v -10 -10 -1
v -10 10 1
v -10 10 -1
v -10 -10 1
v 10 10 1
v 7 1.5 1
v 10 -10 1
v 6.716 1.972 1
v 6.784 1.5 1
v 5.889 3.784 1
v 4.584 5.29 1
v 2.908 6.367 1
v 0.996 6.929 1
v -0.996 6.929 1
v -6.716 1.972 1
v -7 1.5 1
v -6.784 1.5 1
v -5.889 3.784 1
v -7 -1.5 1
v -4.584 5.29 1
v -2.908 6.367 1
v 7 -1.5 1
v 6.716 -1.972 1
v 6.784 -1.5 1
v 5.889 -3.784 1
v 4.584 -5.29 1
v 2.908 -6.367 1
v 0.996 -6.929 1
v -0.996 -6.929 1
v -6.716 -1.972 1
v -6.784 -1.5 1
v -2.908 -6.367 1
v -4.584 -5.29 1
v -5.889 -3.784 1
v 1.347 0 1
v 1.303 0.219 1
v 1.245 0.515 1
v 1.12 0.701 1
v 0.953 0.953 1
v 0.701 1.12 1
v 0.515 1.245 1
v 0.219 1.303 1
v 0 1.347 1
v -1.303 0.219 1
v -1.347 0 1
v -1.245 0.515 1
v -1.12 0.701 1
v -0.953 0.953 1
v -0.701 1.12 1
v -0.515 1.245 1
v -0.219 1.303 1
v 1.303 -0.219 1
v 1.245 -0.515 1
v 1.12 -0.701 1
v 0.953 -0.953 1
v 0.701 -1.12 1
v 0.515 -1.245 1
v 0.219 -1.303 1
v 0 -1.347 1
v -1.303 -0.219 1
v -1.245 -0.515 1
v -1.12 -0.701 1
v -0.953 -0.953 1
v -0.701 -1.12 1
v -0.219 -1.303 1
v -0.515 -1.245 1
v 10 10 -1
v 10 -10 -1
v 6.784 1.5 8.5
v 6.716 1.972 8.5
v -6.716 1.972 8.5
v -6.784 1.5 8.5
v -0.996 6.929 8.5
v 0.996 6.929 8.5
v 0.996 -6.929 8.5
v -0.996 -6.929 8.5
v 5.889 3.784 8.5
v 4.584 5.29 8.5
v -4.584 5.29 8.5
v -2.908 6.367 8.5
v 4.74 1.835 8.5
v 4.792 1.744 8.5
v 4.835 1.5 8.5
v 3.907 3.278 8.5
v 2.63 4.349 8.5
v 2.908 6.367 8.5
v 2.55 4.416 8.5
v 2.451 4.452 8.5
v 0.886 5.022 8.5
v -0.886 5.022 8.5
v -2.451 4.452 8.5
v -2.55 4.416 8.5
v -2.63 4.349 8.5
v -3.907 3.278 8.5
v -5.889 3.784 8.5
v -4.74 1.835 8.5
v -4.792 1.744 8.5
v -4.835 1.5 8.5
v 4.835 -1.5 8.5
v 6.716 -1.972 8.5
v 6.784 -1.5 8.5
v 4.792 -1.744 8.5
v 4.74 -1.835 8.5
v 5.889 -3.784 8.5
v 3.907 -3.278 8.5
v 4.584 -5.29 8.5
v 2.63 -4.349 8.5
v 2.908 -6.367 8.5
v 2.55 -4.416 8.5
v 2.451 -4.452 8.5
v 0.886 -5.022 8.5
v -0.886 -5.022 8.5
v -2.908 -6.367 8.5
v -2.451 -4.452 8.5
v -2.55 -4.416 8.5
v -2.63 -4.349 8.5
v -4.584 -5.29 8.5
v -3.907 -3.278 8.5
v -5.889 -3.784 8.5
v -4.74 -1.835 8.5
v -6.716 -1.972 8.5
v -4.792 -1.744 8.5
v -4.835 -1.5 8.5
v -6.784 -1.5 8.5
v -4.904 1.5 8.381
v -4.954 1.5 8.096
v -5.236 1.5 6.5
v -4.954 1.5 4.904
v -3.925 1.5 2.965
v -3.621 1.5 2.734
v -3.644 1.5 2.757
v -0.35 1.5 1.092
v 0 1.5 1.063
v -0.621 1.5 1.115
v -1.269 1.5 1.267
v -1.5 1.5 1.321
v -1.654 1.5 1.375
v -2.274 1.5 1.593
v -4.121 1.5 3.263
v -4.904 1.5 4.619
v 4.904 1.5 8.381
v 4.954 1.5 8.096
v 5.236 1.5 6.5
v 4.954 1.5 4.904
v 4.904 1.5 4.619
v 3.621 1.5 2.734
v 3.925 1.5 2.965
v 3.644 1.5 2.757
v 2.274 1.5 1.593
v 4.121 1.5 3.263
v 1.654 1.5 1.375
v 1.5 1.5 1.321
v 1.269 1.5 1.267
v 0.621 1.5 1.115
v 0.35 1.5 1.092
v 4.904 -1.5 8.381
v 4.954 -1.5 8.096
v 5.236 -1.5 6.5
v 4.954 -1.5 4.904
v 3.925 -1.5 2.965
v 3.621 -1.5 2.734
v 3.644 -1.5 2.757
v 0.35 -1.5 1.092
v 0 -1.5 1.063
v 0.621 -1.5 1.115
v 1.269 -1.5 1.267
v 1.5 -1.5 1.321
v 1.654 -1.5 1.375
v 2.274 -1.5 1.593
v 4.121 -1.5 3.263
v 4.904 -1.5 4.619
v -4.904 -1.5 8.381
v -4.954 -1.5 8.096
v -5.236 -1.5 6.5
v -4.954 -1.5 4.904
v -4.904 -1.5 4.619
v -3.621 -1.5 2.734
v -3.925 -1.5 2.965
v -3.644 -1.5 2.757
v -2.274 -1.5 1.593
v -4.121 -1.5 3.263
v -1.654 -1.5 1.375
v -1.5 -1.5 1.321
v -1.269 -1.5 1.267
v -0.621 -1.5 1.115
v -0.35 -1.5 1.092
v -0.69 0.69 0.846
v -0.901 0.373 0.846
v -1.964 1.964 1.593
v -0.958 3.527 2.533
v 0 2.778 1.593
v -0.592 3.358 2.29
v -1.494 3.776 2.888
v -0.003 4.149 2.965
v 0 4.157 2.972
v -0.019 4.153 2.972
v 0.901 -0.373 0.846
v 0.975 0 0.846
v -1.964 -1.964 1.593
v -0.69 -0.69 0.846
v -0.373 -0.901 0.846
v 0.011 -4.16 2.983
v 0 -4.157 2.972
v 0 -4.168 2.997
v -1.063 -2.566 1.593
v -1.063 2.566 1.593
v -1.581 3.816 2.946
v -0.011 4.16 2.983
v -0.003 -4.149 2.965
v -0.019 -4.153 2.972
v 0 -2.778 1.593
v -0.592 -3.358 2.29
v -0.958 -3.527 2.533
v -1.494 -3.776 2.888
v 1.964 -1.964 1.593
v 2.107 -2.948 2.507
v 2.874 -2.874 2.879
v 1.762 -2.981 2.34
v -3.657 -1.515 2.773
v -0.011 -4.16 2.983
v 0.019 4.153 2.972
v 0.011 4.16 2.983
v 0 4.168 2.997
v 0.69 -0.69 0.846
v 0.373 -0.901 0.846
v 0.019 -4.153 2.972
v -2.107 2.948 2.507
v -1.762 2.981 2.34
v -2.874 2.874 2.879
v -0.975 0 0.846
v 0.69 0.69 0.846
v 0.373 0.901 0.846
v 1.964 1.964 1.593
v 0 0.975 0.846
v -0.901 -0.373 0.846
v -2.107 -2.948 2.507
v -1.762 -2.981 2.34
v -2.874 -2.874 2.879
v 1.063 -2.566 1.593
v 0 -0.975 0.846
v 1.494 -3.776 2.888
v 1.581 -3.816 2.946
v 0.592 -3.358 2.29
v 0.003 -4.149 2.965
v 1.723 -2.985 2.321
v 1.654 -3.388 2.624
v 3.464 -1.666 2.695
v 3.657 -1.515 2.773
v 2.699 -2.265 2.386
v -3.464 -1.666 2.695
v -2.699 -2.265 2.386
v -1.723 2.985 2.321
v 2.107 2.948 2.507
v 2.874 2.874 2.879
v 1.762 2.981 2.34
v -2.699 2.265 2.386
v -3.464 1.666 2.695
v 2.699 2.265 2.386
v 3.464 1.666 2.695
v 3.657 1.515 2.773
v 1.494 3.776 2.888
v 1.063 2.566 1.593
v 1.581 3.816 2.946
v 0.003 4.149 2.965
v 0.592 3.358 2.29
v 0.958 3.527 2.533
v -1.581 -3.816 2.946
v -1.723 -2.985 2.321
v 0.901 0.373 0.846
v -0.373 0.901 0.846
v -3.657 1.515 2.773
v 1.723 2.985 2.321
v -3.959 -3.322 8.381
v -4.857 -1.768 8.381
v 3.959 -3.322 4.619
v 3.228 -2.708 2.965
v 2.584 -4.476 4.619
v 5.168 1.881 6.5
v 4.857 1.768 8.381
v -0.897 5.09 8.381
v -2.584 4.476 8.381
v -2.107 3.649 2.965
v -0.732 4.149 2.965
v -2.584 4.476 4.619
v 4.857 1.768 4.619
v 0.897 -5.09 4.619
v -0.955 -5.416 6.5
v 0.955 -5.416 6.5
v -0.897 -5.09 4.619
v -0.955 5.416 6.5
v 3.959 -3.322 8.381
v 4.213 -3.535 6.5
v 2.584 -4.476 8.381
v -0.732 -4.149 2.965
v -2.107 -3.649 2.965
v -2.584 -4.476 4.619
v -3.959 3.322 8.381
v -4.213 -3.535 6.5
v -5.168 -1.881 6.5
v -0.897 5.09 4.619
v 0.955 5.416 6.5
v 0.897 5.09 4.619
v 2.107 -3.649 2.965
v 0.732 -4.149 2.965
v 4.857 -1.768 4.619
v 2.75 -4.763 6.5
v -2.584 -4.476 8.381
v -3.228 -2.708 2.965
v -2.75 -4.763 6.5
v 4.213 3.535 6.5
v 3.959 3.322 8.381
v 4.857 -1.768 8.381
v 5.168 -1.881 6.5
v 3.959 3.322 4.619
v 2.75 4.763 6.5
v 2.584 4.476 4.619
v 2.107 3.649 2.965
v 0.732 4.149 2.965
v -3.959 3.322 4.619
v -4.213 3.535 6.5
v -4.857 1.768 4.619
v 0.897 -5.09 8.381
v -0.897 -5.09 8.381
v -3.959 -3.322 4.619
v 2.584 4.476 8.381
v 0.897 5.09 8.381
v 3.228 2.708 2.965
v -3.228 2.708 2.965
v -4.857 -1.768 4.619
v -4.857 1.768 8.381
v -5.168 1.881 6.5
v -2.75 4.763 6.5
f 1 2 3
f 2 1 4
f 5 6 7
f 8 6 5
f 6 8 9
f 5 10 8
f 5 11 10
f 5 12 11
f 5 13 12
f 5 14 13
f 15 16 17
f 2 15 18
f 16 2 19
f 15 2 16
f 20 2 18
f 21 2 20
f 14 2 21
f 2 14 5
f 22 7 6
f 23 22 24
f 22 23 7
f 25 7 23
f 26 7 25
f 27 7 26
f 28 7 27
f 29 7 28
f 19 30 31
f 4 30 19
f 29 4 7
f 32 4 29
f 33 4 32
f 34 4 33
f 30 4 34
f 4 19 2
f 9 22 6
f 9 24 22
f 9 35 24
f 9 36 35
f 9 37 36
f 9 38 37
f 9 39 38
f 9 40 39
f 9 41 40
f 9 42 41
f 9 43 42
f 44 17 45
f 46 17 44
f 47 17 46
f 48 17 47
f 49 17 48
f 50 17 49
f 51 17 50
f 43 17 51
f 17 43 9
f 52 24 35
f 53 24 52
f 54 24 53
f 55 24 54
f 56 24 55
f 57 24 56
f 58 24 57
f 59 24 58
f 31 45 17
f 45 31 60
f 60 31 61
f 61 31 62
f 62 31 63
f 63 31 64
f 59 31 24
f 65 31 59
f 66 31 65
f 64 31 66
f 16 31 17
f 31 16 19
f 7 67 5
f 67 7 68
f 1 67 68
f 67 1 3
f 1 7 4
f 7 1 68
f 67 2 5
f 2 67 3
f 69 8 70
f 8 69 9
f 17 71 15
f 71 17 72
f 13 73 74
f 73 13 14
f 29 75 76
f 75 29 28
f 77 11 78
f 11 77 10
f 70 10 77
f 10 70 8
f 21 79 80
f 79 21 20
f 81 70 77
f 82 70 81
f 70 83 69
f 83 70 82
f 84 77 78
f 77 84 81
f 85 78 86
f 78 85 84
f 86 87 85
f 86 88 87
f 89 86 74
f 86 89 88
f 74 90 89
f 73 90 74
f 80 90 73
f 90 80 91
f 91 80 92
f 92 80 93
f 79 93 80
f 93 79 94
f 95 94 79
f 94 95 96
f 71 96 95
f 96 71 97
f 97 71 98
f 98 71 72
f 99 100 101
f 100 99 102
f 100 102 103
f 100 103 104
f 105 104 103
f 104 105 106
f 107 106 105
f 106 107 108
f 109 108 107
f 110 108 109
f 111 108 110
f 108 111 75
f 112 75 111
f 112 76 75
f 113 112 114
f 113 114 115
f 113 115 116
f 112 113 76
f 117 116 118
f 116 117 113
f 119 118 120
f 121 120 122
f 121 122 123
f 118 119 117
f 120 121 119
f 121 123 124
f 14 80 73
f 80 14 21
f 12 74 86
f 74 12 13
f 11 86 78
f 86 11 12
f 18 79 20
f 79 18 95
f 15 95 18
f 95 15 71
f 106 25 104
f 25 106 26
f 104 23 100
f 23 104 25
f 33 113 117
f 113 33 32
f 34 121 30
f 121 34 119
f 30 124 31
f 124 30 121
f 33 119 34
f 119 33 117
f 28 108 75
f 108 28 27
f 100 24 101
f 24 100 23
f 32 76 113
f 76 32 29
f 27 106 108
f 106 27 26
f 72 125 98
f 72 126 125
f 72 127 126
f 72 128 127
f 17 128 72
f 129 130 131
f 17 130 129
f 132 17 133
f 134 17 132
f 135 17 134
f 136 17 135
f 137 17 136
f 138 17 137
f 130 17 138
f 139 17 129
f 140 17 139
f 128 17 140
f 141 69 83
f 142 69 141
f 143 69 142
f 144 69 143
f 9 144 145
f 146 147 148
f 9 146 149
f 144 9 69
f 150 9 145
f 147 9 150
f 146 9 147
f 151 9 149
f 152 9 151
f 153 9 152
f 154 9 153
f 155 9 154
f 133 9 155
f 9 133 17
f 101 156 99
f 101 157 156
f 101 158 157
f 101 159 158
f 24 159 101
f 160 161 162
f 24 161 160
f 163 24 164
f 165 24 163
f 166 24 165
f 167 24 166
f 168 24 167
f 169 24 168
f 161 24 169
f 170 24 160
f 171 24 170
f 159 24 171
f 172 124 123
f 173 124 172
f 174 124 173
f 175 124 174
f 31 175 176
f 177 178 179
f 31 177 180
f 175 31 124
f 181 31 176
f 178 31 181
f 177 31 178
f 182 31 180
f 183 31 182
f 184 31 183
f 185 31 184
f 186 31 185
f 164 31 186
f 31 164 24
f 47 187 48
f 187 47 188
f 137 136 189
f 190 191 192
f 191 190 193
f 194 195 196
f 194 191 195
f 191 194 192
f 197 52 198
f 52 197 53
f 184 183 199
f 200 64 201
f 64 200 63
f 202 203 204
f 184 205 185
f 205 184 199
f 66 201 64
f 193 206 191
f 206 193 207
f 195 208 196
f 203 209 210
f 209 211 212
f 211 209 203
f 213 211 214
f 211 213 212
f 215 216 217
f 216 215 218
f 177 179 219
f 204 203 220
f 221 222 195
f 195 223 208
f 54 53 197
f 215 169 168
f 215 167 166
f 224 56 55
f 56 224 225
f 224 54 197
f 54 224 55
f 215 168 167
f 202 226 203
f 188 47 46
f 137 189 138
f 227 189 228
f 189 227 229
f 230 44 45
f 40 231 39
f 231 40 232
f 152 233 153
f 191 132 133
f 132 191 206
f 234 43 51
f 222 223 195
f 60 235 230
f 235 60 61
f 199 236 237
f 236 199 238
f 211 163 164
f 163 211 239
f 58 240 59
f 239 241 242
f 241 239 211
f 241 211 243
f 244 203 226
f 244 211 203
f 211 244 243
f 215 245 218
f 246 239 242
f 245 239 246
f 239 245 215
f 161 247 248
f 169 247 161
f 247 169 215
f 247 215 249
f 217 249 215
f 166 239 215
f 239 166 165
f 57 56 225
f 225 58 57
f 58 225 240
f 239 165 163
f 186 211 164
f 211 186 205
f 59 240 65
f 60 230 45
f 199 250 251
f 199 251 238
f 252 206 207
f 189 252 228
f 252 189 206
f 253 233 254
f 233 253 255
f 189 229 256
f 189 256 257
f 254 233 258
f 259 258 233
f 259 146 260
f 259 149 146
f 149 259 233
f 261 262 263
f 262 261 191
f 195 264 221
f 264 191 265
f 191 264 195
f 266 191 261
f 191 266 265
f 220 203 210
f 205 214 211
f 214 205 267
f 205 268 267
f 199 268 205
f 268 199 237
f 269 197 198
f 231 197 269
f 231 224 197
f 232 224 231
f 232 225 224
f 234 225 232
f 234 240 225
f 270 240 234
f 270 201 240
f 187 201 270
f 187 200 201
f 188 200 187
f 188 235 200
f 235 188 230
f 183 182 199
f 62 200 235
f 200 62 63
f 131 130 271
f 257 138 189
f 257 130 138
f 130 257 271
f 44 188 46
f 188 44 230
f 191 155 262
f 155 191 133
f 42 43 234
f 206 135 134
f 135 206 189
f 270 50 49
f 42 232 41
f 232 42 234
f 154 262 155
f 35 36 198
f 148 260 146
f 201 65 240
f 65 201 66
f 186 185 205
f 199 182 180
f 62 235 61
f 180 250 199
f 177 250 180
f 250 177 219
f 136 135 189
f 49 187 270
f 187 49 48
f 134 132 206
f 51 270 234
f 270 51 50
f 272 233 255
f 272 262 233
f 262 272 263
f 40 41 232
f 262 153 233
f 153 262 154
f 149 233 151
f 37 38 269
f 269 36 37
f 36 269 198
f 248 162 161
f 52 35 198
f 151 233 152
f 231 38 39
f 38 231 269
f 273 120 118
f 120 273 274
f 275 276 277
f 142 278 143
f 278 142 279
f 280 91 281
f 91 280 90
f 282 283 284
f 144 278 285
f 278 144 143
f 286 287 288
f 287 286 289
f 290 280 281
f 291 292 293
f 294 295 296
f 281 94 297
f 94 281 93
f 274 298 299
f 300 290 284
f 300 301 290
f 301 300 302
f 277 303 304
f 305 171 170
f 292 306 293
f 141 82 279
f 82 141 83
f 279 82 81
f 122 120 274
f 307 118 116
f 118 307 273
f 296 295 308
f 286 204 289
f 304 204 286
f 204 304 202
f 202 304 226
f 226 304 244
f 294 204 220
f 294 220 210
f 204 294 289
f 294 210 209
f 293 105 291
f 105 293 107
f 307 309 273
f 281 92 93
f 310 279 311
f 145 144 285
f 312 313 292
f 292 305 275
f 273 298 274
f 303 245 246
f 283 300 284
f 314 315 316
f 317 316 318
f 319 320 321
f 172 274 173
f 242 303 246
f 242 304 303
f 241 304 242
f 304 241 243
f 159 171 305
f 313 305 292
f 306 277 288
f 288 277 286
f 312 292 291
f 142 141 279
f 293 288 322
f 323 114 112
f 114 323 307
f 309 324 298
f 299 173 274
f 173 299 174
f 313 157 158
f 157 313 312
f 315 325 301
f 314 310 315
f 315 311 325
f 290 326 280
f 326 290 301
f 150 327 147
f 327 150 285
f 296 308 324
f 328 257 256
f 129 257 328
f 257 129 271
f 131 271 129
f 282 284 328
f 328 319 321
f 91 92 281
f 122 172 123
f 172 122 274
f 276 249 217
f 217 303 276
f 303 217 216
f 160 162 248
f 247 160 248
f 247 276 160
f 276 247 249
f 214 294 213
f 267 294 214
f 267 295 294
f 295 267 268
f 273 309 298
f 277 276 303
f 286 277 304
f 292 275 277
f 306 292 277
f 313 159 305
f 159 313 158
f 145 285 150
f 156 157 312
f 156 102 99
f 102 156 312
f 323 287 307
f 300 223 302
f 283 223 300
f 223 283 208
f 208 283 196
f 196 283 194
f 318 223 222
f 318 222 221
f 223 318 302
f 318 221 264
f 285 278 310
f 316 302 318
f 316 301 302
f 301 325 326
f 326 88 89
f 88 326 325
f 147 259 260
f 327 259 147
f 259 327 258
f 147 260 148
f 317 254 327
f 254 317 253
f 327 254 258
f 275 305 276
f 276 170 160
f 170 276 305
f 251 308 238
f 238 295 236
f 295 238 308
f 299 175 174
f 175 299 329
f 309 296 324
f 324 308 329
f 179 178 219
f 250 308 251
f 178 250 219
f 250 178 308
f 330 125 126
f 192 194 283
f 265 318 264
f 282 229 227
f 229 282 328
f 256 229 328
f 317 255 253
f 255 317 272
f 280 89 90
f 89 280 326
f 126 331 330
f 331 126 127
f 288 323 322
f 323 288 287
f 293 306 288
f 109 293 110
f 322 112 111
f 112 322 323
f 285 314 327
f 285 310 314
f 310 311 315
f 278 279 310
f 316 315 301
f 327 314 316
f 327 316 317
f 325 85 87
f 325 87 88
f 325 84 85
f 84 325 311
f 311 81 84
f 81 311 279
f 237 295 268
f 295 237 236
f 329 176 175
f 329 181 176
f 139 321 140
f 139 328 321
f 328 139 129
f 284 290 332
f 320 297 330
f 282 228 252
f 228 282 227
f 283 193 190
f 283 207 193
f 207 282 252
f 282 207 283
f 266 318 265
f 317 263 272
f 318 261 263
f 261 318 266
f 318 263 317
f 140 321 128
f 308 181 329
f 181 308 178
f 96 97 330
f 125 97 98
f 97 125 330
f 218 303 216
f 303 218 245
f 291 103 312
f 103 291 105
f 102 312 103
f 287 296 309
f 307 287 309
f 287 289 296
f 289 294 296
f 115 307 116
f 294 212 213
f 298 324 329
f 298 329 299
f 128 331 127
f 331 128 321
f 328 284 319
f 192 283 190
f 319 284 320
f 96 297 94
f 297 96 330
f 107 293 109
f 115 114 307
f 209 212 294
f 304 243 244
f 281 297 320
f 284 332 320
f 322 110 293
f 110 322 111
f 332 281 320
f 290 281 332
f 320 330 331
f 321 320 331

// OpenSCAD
// suport bola de lliure moviment tamany 9.5 mm diametre

h_base=2;
h_cilindre=7.5;
r_cilindre=7;
d_esfera=11;
difference(){
    
    union(){
        cube([20,20,h_base], center=true); // base
        translate([0,0,h_base/2+h_cilindre/2]){
            cylinder(h = h_cilindre, r1 = r_cilindre, r2 = r_cilindre, center = true);
        }
    }
    translate([0,0,h_base/2+h_cilindre/2+1]){
        cube([14,3,h_cilindre+2], center=true);
            sphere(d=10);
    }
    translate([0,0,h_base/2+d_esfera/2]){
        sphere(d=d_esfera);
    }

}
